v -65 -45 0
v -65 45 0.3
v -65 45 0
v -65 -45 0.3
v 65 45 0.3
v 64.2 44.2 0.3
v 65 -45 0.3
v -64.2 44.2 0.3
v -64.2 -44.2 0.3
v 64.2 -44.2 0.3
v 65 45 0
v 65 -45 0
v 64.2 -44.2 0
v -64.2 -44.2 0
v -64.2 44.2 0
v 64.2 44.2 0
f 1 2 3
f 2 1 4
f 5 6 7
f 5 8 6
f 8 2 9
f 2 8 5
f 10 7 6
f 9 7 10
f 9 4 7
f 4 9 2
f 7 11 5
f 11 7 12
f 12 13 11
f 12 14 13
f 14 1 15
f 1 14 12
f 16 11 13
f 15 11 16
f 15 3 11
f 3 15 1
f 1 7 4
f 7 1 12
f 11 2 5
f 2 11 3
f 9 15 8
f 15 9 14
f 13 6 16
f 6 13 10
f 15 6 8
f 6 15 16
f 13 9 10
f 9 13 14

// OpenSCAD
x=130;
y=90;
n=2;

difference() {
   translate([-x/2,-y/2,0]) cube([x,y,0.3]);
   translate([-(x-2*n*0.4)/2,-(y-2*n*0.4)/2,-0.05])
      cube([x-2*n*0.4,y-2*n*0.4,0.4]);
}
